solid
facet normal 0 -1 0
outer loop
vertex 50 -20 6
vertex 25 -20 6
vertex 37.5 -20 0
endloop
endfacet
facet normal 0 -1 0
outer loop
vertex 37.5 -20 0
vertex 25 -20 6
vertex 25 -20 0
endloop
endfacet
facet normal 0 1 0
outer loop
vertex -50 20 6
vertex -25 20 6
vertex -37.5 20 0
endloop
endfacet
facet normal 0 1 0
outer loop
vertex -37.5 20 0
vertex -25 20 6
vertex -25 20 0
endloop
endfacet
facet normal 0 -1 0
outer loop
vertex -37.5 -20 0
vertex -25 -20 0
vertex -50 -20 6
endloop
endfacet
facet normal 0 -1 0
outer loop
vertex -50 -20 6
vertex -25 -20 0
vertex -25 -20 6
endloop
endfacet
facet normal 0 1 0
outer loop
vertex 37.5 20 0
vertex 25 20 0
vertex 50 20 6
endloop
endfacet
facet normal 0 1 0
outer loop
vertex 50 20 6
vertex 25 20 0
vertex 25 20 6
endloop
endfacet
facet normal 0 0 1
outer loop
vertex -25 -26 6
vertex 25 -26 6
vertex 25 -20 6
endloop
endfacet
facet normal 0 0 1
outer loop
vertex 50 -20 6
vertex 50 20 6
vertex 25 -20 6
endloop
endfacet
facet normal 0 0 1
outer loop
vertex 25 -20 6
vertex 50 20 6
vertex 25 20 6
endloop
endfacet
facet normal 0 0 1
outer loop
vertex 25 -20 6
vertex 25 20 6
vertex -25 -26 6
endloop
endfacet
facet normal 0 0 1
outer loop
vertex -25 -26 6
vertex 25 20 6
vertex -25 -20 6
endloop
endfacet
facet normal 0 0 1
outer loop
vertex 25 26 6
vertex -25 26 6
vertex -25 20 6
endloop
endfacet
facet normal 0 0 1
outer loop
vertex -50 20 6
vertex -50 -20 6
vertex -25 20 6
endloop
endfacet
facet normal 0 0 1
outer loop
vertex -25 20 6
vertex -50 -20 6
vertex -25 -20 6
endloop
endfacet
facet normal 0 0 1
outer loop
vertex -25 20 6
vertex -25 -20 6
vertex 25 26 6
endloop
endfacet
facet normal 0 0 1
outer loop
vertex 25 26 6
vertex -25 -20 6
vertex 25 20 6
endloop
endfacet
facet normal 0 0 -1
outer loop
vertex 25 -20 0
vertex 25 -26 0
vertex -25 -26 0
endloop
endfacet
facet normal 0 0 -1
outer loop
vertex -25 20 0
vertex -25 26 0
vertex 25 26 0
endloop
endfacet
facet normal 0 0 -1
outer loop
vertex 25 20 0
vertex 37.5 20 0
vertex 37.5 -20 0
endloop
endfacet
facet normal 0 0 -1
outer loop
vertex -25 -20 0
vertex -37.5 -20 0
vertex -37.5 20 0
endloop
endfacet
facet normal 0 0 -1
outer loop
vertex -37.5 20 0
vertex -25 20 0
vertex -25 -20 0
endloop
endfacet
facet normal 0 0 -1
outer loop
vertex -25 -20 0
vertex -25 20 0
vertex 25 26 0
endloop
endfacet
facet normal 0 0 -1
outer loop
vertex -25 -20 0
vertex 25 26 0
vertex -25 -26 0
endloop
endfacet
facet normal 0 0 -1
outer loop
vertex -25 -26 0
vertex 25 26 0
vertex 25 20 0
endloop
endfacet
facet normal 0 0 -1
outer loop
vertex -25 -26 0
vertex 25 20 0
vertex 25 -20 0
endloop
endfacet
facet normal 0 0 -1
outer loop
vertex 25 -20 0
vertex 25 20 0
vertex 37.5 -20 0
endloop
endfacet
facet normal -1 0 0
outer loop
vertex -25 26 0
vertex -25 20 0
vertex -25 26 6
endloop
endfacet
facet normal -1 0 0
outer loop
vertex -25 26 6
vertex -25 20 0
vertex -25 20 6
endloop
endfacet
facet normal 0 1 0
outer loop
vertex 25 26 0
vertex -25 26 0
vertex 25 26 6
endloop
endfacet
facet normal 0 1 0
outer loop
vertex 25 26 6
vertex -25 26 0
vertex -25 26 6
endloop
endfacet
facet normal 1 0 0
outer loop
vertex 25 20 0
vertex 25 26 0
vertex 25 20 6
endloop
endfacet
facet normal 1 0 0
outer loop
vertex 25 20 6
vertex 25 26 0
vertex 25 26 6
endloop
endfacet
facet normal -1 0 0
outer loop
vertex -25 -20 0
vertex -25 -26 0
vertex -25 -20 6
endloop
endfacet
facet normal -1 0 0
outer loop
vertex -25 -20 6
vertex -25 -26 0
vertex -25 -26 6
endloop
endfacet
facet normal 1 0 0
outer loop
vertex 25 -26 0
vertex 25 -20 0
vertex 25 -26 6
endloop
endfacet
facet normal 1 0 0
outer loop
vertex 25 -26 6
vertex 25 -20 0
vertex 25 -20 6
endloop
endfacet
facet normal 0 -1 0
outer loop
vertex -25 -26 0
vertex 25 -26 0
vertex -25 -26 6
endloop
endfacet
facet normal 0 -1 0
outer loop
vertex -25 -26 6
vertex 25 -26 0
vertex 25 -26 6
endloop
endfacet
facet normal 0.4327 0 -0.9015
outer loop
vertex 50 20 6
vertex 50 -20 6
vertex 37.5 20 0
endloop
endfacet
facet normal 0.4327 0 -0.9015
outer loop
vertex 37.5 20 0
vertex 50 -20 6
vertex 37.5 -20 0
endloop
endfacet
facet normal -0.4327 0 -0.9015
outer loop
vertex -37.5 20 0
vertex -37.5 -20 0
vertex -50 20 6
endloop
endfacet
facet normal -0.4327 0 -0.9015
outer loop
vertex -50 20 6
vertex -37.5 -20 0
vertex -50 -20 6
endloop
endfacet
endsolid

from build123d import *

# Parameters (mm, degrees)
ESQUISSE1_W             = 100
ESQUISSE1_H             = 40
BOSS_EXTRU_1_DEPTH      = 6
ESQUISSE2_W             = 50
ESQUISSE2_H             = 6
BOSS_EXTRU_2_DEPTH      = 6
ENL_V_MAT_EXTRU_1_DEPTH = 47


with BuildPart() as part:
    # Esquisse1 → Boss.-Extru.1 (new body)
    with BuildSketch(Plane.XY):
        Rectangle(ESQUISSE1_W, ESQUISSE1_H)
    extrude(amount=BOSS_EXTRU_1_DEPTH)

    # Esquisse2 → Boss.-Extru.2 (add)
    with BuildSketch(Plane.XY.offset(6)):
        with Locations((0, 23)):
            Rectangle(ESQUISSE2_W, ESQUISSE2_H)
        with Locations((0, -23)):
            Rectangle(ESQUISSE2_W, ESQUISSE2_H)
    extrude(amount=-BOSS_EXTRU_2_DEPTH)

    # Esquisse3 → Enlèv. mat.-Extru.1 (cut, through all)
    with BuildSketch(Plane(origin=(0, 20, 0), x_dir=(1, 0, 0), z_dir=(0, 1, 0))):
        Polygon((-50, -6), (-37.5, 0), (-50, 0), align=None)
        Polygon((50, -6), (37.5, 0), (50, 0), align=None)
    extrude(amount=-ENL_V_MAT_EXTRU_1_DEPTH, mode=Mode.SUBTRACT)


solid = part.part
